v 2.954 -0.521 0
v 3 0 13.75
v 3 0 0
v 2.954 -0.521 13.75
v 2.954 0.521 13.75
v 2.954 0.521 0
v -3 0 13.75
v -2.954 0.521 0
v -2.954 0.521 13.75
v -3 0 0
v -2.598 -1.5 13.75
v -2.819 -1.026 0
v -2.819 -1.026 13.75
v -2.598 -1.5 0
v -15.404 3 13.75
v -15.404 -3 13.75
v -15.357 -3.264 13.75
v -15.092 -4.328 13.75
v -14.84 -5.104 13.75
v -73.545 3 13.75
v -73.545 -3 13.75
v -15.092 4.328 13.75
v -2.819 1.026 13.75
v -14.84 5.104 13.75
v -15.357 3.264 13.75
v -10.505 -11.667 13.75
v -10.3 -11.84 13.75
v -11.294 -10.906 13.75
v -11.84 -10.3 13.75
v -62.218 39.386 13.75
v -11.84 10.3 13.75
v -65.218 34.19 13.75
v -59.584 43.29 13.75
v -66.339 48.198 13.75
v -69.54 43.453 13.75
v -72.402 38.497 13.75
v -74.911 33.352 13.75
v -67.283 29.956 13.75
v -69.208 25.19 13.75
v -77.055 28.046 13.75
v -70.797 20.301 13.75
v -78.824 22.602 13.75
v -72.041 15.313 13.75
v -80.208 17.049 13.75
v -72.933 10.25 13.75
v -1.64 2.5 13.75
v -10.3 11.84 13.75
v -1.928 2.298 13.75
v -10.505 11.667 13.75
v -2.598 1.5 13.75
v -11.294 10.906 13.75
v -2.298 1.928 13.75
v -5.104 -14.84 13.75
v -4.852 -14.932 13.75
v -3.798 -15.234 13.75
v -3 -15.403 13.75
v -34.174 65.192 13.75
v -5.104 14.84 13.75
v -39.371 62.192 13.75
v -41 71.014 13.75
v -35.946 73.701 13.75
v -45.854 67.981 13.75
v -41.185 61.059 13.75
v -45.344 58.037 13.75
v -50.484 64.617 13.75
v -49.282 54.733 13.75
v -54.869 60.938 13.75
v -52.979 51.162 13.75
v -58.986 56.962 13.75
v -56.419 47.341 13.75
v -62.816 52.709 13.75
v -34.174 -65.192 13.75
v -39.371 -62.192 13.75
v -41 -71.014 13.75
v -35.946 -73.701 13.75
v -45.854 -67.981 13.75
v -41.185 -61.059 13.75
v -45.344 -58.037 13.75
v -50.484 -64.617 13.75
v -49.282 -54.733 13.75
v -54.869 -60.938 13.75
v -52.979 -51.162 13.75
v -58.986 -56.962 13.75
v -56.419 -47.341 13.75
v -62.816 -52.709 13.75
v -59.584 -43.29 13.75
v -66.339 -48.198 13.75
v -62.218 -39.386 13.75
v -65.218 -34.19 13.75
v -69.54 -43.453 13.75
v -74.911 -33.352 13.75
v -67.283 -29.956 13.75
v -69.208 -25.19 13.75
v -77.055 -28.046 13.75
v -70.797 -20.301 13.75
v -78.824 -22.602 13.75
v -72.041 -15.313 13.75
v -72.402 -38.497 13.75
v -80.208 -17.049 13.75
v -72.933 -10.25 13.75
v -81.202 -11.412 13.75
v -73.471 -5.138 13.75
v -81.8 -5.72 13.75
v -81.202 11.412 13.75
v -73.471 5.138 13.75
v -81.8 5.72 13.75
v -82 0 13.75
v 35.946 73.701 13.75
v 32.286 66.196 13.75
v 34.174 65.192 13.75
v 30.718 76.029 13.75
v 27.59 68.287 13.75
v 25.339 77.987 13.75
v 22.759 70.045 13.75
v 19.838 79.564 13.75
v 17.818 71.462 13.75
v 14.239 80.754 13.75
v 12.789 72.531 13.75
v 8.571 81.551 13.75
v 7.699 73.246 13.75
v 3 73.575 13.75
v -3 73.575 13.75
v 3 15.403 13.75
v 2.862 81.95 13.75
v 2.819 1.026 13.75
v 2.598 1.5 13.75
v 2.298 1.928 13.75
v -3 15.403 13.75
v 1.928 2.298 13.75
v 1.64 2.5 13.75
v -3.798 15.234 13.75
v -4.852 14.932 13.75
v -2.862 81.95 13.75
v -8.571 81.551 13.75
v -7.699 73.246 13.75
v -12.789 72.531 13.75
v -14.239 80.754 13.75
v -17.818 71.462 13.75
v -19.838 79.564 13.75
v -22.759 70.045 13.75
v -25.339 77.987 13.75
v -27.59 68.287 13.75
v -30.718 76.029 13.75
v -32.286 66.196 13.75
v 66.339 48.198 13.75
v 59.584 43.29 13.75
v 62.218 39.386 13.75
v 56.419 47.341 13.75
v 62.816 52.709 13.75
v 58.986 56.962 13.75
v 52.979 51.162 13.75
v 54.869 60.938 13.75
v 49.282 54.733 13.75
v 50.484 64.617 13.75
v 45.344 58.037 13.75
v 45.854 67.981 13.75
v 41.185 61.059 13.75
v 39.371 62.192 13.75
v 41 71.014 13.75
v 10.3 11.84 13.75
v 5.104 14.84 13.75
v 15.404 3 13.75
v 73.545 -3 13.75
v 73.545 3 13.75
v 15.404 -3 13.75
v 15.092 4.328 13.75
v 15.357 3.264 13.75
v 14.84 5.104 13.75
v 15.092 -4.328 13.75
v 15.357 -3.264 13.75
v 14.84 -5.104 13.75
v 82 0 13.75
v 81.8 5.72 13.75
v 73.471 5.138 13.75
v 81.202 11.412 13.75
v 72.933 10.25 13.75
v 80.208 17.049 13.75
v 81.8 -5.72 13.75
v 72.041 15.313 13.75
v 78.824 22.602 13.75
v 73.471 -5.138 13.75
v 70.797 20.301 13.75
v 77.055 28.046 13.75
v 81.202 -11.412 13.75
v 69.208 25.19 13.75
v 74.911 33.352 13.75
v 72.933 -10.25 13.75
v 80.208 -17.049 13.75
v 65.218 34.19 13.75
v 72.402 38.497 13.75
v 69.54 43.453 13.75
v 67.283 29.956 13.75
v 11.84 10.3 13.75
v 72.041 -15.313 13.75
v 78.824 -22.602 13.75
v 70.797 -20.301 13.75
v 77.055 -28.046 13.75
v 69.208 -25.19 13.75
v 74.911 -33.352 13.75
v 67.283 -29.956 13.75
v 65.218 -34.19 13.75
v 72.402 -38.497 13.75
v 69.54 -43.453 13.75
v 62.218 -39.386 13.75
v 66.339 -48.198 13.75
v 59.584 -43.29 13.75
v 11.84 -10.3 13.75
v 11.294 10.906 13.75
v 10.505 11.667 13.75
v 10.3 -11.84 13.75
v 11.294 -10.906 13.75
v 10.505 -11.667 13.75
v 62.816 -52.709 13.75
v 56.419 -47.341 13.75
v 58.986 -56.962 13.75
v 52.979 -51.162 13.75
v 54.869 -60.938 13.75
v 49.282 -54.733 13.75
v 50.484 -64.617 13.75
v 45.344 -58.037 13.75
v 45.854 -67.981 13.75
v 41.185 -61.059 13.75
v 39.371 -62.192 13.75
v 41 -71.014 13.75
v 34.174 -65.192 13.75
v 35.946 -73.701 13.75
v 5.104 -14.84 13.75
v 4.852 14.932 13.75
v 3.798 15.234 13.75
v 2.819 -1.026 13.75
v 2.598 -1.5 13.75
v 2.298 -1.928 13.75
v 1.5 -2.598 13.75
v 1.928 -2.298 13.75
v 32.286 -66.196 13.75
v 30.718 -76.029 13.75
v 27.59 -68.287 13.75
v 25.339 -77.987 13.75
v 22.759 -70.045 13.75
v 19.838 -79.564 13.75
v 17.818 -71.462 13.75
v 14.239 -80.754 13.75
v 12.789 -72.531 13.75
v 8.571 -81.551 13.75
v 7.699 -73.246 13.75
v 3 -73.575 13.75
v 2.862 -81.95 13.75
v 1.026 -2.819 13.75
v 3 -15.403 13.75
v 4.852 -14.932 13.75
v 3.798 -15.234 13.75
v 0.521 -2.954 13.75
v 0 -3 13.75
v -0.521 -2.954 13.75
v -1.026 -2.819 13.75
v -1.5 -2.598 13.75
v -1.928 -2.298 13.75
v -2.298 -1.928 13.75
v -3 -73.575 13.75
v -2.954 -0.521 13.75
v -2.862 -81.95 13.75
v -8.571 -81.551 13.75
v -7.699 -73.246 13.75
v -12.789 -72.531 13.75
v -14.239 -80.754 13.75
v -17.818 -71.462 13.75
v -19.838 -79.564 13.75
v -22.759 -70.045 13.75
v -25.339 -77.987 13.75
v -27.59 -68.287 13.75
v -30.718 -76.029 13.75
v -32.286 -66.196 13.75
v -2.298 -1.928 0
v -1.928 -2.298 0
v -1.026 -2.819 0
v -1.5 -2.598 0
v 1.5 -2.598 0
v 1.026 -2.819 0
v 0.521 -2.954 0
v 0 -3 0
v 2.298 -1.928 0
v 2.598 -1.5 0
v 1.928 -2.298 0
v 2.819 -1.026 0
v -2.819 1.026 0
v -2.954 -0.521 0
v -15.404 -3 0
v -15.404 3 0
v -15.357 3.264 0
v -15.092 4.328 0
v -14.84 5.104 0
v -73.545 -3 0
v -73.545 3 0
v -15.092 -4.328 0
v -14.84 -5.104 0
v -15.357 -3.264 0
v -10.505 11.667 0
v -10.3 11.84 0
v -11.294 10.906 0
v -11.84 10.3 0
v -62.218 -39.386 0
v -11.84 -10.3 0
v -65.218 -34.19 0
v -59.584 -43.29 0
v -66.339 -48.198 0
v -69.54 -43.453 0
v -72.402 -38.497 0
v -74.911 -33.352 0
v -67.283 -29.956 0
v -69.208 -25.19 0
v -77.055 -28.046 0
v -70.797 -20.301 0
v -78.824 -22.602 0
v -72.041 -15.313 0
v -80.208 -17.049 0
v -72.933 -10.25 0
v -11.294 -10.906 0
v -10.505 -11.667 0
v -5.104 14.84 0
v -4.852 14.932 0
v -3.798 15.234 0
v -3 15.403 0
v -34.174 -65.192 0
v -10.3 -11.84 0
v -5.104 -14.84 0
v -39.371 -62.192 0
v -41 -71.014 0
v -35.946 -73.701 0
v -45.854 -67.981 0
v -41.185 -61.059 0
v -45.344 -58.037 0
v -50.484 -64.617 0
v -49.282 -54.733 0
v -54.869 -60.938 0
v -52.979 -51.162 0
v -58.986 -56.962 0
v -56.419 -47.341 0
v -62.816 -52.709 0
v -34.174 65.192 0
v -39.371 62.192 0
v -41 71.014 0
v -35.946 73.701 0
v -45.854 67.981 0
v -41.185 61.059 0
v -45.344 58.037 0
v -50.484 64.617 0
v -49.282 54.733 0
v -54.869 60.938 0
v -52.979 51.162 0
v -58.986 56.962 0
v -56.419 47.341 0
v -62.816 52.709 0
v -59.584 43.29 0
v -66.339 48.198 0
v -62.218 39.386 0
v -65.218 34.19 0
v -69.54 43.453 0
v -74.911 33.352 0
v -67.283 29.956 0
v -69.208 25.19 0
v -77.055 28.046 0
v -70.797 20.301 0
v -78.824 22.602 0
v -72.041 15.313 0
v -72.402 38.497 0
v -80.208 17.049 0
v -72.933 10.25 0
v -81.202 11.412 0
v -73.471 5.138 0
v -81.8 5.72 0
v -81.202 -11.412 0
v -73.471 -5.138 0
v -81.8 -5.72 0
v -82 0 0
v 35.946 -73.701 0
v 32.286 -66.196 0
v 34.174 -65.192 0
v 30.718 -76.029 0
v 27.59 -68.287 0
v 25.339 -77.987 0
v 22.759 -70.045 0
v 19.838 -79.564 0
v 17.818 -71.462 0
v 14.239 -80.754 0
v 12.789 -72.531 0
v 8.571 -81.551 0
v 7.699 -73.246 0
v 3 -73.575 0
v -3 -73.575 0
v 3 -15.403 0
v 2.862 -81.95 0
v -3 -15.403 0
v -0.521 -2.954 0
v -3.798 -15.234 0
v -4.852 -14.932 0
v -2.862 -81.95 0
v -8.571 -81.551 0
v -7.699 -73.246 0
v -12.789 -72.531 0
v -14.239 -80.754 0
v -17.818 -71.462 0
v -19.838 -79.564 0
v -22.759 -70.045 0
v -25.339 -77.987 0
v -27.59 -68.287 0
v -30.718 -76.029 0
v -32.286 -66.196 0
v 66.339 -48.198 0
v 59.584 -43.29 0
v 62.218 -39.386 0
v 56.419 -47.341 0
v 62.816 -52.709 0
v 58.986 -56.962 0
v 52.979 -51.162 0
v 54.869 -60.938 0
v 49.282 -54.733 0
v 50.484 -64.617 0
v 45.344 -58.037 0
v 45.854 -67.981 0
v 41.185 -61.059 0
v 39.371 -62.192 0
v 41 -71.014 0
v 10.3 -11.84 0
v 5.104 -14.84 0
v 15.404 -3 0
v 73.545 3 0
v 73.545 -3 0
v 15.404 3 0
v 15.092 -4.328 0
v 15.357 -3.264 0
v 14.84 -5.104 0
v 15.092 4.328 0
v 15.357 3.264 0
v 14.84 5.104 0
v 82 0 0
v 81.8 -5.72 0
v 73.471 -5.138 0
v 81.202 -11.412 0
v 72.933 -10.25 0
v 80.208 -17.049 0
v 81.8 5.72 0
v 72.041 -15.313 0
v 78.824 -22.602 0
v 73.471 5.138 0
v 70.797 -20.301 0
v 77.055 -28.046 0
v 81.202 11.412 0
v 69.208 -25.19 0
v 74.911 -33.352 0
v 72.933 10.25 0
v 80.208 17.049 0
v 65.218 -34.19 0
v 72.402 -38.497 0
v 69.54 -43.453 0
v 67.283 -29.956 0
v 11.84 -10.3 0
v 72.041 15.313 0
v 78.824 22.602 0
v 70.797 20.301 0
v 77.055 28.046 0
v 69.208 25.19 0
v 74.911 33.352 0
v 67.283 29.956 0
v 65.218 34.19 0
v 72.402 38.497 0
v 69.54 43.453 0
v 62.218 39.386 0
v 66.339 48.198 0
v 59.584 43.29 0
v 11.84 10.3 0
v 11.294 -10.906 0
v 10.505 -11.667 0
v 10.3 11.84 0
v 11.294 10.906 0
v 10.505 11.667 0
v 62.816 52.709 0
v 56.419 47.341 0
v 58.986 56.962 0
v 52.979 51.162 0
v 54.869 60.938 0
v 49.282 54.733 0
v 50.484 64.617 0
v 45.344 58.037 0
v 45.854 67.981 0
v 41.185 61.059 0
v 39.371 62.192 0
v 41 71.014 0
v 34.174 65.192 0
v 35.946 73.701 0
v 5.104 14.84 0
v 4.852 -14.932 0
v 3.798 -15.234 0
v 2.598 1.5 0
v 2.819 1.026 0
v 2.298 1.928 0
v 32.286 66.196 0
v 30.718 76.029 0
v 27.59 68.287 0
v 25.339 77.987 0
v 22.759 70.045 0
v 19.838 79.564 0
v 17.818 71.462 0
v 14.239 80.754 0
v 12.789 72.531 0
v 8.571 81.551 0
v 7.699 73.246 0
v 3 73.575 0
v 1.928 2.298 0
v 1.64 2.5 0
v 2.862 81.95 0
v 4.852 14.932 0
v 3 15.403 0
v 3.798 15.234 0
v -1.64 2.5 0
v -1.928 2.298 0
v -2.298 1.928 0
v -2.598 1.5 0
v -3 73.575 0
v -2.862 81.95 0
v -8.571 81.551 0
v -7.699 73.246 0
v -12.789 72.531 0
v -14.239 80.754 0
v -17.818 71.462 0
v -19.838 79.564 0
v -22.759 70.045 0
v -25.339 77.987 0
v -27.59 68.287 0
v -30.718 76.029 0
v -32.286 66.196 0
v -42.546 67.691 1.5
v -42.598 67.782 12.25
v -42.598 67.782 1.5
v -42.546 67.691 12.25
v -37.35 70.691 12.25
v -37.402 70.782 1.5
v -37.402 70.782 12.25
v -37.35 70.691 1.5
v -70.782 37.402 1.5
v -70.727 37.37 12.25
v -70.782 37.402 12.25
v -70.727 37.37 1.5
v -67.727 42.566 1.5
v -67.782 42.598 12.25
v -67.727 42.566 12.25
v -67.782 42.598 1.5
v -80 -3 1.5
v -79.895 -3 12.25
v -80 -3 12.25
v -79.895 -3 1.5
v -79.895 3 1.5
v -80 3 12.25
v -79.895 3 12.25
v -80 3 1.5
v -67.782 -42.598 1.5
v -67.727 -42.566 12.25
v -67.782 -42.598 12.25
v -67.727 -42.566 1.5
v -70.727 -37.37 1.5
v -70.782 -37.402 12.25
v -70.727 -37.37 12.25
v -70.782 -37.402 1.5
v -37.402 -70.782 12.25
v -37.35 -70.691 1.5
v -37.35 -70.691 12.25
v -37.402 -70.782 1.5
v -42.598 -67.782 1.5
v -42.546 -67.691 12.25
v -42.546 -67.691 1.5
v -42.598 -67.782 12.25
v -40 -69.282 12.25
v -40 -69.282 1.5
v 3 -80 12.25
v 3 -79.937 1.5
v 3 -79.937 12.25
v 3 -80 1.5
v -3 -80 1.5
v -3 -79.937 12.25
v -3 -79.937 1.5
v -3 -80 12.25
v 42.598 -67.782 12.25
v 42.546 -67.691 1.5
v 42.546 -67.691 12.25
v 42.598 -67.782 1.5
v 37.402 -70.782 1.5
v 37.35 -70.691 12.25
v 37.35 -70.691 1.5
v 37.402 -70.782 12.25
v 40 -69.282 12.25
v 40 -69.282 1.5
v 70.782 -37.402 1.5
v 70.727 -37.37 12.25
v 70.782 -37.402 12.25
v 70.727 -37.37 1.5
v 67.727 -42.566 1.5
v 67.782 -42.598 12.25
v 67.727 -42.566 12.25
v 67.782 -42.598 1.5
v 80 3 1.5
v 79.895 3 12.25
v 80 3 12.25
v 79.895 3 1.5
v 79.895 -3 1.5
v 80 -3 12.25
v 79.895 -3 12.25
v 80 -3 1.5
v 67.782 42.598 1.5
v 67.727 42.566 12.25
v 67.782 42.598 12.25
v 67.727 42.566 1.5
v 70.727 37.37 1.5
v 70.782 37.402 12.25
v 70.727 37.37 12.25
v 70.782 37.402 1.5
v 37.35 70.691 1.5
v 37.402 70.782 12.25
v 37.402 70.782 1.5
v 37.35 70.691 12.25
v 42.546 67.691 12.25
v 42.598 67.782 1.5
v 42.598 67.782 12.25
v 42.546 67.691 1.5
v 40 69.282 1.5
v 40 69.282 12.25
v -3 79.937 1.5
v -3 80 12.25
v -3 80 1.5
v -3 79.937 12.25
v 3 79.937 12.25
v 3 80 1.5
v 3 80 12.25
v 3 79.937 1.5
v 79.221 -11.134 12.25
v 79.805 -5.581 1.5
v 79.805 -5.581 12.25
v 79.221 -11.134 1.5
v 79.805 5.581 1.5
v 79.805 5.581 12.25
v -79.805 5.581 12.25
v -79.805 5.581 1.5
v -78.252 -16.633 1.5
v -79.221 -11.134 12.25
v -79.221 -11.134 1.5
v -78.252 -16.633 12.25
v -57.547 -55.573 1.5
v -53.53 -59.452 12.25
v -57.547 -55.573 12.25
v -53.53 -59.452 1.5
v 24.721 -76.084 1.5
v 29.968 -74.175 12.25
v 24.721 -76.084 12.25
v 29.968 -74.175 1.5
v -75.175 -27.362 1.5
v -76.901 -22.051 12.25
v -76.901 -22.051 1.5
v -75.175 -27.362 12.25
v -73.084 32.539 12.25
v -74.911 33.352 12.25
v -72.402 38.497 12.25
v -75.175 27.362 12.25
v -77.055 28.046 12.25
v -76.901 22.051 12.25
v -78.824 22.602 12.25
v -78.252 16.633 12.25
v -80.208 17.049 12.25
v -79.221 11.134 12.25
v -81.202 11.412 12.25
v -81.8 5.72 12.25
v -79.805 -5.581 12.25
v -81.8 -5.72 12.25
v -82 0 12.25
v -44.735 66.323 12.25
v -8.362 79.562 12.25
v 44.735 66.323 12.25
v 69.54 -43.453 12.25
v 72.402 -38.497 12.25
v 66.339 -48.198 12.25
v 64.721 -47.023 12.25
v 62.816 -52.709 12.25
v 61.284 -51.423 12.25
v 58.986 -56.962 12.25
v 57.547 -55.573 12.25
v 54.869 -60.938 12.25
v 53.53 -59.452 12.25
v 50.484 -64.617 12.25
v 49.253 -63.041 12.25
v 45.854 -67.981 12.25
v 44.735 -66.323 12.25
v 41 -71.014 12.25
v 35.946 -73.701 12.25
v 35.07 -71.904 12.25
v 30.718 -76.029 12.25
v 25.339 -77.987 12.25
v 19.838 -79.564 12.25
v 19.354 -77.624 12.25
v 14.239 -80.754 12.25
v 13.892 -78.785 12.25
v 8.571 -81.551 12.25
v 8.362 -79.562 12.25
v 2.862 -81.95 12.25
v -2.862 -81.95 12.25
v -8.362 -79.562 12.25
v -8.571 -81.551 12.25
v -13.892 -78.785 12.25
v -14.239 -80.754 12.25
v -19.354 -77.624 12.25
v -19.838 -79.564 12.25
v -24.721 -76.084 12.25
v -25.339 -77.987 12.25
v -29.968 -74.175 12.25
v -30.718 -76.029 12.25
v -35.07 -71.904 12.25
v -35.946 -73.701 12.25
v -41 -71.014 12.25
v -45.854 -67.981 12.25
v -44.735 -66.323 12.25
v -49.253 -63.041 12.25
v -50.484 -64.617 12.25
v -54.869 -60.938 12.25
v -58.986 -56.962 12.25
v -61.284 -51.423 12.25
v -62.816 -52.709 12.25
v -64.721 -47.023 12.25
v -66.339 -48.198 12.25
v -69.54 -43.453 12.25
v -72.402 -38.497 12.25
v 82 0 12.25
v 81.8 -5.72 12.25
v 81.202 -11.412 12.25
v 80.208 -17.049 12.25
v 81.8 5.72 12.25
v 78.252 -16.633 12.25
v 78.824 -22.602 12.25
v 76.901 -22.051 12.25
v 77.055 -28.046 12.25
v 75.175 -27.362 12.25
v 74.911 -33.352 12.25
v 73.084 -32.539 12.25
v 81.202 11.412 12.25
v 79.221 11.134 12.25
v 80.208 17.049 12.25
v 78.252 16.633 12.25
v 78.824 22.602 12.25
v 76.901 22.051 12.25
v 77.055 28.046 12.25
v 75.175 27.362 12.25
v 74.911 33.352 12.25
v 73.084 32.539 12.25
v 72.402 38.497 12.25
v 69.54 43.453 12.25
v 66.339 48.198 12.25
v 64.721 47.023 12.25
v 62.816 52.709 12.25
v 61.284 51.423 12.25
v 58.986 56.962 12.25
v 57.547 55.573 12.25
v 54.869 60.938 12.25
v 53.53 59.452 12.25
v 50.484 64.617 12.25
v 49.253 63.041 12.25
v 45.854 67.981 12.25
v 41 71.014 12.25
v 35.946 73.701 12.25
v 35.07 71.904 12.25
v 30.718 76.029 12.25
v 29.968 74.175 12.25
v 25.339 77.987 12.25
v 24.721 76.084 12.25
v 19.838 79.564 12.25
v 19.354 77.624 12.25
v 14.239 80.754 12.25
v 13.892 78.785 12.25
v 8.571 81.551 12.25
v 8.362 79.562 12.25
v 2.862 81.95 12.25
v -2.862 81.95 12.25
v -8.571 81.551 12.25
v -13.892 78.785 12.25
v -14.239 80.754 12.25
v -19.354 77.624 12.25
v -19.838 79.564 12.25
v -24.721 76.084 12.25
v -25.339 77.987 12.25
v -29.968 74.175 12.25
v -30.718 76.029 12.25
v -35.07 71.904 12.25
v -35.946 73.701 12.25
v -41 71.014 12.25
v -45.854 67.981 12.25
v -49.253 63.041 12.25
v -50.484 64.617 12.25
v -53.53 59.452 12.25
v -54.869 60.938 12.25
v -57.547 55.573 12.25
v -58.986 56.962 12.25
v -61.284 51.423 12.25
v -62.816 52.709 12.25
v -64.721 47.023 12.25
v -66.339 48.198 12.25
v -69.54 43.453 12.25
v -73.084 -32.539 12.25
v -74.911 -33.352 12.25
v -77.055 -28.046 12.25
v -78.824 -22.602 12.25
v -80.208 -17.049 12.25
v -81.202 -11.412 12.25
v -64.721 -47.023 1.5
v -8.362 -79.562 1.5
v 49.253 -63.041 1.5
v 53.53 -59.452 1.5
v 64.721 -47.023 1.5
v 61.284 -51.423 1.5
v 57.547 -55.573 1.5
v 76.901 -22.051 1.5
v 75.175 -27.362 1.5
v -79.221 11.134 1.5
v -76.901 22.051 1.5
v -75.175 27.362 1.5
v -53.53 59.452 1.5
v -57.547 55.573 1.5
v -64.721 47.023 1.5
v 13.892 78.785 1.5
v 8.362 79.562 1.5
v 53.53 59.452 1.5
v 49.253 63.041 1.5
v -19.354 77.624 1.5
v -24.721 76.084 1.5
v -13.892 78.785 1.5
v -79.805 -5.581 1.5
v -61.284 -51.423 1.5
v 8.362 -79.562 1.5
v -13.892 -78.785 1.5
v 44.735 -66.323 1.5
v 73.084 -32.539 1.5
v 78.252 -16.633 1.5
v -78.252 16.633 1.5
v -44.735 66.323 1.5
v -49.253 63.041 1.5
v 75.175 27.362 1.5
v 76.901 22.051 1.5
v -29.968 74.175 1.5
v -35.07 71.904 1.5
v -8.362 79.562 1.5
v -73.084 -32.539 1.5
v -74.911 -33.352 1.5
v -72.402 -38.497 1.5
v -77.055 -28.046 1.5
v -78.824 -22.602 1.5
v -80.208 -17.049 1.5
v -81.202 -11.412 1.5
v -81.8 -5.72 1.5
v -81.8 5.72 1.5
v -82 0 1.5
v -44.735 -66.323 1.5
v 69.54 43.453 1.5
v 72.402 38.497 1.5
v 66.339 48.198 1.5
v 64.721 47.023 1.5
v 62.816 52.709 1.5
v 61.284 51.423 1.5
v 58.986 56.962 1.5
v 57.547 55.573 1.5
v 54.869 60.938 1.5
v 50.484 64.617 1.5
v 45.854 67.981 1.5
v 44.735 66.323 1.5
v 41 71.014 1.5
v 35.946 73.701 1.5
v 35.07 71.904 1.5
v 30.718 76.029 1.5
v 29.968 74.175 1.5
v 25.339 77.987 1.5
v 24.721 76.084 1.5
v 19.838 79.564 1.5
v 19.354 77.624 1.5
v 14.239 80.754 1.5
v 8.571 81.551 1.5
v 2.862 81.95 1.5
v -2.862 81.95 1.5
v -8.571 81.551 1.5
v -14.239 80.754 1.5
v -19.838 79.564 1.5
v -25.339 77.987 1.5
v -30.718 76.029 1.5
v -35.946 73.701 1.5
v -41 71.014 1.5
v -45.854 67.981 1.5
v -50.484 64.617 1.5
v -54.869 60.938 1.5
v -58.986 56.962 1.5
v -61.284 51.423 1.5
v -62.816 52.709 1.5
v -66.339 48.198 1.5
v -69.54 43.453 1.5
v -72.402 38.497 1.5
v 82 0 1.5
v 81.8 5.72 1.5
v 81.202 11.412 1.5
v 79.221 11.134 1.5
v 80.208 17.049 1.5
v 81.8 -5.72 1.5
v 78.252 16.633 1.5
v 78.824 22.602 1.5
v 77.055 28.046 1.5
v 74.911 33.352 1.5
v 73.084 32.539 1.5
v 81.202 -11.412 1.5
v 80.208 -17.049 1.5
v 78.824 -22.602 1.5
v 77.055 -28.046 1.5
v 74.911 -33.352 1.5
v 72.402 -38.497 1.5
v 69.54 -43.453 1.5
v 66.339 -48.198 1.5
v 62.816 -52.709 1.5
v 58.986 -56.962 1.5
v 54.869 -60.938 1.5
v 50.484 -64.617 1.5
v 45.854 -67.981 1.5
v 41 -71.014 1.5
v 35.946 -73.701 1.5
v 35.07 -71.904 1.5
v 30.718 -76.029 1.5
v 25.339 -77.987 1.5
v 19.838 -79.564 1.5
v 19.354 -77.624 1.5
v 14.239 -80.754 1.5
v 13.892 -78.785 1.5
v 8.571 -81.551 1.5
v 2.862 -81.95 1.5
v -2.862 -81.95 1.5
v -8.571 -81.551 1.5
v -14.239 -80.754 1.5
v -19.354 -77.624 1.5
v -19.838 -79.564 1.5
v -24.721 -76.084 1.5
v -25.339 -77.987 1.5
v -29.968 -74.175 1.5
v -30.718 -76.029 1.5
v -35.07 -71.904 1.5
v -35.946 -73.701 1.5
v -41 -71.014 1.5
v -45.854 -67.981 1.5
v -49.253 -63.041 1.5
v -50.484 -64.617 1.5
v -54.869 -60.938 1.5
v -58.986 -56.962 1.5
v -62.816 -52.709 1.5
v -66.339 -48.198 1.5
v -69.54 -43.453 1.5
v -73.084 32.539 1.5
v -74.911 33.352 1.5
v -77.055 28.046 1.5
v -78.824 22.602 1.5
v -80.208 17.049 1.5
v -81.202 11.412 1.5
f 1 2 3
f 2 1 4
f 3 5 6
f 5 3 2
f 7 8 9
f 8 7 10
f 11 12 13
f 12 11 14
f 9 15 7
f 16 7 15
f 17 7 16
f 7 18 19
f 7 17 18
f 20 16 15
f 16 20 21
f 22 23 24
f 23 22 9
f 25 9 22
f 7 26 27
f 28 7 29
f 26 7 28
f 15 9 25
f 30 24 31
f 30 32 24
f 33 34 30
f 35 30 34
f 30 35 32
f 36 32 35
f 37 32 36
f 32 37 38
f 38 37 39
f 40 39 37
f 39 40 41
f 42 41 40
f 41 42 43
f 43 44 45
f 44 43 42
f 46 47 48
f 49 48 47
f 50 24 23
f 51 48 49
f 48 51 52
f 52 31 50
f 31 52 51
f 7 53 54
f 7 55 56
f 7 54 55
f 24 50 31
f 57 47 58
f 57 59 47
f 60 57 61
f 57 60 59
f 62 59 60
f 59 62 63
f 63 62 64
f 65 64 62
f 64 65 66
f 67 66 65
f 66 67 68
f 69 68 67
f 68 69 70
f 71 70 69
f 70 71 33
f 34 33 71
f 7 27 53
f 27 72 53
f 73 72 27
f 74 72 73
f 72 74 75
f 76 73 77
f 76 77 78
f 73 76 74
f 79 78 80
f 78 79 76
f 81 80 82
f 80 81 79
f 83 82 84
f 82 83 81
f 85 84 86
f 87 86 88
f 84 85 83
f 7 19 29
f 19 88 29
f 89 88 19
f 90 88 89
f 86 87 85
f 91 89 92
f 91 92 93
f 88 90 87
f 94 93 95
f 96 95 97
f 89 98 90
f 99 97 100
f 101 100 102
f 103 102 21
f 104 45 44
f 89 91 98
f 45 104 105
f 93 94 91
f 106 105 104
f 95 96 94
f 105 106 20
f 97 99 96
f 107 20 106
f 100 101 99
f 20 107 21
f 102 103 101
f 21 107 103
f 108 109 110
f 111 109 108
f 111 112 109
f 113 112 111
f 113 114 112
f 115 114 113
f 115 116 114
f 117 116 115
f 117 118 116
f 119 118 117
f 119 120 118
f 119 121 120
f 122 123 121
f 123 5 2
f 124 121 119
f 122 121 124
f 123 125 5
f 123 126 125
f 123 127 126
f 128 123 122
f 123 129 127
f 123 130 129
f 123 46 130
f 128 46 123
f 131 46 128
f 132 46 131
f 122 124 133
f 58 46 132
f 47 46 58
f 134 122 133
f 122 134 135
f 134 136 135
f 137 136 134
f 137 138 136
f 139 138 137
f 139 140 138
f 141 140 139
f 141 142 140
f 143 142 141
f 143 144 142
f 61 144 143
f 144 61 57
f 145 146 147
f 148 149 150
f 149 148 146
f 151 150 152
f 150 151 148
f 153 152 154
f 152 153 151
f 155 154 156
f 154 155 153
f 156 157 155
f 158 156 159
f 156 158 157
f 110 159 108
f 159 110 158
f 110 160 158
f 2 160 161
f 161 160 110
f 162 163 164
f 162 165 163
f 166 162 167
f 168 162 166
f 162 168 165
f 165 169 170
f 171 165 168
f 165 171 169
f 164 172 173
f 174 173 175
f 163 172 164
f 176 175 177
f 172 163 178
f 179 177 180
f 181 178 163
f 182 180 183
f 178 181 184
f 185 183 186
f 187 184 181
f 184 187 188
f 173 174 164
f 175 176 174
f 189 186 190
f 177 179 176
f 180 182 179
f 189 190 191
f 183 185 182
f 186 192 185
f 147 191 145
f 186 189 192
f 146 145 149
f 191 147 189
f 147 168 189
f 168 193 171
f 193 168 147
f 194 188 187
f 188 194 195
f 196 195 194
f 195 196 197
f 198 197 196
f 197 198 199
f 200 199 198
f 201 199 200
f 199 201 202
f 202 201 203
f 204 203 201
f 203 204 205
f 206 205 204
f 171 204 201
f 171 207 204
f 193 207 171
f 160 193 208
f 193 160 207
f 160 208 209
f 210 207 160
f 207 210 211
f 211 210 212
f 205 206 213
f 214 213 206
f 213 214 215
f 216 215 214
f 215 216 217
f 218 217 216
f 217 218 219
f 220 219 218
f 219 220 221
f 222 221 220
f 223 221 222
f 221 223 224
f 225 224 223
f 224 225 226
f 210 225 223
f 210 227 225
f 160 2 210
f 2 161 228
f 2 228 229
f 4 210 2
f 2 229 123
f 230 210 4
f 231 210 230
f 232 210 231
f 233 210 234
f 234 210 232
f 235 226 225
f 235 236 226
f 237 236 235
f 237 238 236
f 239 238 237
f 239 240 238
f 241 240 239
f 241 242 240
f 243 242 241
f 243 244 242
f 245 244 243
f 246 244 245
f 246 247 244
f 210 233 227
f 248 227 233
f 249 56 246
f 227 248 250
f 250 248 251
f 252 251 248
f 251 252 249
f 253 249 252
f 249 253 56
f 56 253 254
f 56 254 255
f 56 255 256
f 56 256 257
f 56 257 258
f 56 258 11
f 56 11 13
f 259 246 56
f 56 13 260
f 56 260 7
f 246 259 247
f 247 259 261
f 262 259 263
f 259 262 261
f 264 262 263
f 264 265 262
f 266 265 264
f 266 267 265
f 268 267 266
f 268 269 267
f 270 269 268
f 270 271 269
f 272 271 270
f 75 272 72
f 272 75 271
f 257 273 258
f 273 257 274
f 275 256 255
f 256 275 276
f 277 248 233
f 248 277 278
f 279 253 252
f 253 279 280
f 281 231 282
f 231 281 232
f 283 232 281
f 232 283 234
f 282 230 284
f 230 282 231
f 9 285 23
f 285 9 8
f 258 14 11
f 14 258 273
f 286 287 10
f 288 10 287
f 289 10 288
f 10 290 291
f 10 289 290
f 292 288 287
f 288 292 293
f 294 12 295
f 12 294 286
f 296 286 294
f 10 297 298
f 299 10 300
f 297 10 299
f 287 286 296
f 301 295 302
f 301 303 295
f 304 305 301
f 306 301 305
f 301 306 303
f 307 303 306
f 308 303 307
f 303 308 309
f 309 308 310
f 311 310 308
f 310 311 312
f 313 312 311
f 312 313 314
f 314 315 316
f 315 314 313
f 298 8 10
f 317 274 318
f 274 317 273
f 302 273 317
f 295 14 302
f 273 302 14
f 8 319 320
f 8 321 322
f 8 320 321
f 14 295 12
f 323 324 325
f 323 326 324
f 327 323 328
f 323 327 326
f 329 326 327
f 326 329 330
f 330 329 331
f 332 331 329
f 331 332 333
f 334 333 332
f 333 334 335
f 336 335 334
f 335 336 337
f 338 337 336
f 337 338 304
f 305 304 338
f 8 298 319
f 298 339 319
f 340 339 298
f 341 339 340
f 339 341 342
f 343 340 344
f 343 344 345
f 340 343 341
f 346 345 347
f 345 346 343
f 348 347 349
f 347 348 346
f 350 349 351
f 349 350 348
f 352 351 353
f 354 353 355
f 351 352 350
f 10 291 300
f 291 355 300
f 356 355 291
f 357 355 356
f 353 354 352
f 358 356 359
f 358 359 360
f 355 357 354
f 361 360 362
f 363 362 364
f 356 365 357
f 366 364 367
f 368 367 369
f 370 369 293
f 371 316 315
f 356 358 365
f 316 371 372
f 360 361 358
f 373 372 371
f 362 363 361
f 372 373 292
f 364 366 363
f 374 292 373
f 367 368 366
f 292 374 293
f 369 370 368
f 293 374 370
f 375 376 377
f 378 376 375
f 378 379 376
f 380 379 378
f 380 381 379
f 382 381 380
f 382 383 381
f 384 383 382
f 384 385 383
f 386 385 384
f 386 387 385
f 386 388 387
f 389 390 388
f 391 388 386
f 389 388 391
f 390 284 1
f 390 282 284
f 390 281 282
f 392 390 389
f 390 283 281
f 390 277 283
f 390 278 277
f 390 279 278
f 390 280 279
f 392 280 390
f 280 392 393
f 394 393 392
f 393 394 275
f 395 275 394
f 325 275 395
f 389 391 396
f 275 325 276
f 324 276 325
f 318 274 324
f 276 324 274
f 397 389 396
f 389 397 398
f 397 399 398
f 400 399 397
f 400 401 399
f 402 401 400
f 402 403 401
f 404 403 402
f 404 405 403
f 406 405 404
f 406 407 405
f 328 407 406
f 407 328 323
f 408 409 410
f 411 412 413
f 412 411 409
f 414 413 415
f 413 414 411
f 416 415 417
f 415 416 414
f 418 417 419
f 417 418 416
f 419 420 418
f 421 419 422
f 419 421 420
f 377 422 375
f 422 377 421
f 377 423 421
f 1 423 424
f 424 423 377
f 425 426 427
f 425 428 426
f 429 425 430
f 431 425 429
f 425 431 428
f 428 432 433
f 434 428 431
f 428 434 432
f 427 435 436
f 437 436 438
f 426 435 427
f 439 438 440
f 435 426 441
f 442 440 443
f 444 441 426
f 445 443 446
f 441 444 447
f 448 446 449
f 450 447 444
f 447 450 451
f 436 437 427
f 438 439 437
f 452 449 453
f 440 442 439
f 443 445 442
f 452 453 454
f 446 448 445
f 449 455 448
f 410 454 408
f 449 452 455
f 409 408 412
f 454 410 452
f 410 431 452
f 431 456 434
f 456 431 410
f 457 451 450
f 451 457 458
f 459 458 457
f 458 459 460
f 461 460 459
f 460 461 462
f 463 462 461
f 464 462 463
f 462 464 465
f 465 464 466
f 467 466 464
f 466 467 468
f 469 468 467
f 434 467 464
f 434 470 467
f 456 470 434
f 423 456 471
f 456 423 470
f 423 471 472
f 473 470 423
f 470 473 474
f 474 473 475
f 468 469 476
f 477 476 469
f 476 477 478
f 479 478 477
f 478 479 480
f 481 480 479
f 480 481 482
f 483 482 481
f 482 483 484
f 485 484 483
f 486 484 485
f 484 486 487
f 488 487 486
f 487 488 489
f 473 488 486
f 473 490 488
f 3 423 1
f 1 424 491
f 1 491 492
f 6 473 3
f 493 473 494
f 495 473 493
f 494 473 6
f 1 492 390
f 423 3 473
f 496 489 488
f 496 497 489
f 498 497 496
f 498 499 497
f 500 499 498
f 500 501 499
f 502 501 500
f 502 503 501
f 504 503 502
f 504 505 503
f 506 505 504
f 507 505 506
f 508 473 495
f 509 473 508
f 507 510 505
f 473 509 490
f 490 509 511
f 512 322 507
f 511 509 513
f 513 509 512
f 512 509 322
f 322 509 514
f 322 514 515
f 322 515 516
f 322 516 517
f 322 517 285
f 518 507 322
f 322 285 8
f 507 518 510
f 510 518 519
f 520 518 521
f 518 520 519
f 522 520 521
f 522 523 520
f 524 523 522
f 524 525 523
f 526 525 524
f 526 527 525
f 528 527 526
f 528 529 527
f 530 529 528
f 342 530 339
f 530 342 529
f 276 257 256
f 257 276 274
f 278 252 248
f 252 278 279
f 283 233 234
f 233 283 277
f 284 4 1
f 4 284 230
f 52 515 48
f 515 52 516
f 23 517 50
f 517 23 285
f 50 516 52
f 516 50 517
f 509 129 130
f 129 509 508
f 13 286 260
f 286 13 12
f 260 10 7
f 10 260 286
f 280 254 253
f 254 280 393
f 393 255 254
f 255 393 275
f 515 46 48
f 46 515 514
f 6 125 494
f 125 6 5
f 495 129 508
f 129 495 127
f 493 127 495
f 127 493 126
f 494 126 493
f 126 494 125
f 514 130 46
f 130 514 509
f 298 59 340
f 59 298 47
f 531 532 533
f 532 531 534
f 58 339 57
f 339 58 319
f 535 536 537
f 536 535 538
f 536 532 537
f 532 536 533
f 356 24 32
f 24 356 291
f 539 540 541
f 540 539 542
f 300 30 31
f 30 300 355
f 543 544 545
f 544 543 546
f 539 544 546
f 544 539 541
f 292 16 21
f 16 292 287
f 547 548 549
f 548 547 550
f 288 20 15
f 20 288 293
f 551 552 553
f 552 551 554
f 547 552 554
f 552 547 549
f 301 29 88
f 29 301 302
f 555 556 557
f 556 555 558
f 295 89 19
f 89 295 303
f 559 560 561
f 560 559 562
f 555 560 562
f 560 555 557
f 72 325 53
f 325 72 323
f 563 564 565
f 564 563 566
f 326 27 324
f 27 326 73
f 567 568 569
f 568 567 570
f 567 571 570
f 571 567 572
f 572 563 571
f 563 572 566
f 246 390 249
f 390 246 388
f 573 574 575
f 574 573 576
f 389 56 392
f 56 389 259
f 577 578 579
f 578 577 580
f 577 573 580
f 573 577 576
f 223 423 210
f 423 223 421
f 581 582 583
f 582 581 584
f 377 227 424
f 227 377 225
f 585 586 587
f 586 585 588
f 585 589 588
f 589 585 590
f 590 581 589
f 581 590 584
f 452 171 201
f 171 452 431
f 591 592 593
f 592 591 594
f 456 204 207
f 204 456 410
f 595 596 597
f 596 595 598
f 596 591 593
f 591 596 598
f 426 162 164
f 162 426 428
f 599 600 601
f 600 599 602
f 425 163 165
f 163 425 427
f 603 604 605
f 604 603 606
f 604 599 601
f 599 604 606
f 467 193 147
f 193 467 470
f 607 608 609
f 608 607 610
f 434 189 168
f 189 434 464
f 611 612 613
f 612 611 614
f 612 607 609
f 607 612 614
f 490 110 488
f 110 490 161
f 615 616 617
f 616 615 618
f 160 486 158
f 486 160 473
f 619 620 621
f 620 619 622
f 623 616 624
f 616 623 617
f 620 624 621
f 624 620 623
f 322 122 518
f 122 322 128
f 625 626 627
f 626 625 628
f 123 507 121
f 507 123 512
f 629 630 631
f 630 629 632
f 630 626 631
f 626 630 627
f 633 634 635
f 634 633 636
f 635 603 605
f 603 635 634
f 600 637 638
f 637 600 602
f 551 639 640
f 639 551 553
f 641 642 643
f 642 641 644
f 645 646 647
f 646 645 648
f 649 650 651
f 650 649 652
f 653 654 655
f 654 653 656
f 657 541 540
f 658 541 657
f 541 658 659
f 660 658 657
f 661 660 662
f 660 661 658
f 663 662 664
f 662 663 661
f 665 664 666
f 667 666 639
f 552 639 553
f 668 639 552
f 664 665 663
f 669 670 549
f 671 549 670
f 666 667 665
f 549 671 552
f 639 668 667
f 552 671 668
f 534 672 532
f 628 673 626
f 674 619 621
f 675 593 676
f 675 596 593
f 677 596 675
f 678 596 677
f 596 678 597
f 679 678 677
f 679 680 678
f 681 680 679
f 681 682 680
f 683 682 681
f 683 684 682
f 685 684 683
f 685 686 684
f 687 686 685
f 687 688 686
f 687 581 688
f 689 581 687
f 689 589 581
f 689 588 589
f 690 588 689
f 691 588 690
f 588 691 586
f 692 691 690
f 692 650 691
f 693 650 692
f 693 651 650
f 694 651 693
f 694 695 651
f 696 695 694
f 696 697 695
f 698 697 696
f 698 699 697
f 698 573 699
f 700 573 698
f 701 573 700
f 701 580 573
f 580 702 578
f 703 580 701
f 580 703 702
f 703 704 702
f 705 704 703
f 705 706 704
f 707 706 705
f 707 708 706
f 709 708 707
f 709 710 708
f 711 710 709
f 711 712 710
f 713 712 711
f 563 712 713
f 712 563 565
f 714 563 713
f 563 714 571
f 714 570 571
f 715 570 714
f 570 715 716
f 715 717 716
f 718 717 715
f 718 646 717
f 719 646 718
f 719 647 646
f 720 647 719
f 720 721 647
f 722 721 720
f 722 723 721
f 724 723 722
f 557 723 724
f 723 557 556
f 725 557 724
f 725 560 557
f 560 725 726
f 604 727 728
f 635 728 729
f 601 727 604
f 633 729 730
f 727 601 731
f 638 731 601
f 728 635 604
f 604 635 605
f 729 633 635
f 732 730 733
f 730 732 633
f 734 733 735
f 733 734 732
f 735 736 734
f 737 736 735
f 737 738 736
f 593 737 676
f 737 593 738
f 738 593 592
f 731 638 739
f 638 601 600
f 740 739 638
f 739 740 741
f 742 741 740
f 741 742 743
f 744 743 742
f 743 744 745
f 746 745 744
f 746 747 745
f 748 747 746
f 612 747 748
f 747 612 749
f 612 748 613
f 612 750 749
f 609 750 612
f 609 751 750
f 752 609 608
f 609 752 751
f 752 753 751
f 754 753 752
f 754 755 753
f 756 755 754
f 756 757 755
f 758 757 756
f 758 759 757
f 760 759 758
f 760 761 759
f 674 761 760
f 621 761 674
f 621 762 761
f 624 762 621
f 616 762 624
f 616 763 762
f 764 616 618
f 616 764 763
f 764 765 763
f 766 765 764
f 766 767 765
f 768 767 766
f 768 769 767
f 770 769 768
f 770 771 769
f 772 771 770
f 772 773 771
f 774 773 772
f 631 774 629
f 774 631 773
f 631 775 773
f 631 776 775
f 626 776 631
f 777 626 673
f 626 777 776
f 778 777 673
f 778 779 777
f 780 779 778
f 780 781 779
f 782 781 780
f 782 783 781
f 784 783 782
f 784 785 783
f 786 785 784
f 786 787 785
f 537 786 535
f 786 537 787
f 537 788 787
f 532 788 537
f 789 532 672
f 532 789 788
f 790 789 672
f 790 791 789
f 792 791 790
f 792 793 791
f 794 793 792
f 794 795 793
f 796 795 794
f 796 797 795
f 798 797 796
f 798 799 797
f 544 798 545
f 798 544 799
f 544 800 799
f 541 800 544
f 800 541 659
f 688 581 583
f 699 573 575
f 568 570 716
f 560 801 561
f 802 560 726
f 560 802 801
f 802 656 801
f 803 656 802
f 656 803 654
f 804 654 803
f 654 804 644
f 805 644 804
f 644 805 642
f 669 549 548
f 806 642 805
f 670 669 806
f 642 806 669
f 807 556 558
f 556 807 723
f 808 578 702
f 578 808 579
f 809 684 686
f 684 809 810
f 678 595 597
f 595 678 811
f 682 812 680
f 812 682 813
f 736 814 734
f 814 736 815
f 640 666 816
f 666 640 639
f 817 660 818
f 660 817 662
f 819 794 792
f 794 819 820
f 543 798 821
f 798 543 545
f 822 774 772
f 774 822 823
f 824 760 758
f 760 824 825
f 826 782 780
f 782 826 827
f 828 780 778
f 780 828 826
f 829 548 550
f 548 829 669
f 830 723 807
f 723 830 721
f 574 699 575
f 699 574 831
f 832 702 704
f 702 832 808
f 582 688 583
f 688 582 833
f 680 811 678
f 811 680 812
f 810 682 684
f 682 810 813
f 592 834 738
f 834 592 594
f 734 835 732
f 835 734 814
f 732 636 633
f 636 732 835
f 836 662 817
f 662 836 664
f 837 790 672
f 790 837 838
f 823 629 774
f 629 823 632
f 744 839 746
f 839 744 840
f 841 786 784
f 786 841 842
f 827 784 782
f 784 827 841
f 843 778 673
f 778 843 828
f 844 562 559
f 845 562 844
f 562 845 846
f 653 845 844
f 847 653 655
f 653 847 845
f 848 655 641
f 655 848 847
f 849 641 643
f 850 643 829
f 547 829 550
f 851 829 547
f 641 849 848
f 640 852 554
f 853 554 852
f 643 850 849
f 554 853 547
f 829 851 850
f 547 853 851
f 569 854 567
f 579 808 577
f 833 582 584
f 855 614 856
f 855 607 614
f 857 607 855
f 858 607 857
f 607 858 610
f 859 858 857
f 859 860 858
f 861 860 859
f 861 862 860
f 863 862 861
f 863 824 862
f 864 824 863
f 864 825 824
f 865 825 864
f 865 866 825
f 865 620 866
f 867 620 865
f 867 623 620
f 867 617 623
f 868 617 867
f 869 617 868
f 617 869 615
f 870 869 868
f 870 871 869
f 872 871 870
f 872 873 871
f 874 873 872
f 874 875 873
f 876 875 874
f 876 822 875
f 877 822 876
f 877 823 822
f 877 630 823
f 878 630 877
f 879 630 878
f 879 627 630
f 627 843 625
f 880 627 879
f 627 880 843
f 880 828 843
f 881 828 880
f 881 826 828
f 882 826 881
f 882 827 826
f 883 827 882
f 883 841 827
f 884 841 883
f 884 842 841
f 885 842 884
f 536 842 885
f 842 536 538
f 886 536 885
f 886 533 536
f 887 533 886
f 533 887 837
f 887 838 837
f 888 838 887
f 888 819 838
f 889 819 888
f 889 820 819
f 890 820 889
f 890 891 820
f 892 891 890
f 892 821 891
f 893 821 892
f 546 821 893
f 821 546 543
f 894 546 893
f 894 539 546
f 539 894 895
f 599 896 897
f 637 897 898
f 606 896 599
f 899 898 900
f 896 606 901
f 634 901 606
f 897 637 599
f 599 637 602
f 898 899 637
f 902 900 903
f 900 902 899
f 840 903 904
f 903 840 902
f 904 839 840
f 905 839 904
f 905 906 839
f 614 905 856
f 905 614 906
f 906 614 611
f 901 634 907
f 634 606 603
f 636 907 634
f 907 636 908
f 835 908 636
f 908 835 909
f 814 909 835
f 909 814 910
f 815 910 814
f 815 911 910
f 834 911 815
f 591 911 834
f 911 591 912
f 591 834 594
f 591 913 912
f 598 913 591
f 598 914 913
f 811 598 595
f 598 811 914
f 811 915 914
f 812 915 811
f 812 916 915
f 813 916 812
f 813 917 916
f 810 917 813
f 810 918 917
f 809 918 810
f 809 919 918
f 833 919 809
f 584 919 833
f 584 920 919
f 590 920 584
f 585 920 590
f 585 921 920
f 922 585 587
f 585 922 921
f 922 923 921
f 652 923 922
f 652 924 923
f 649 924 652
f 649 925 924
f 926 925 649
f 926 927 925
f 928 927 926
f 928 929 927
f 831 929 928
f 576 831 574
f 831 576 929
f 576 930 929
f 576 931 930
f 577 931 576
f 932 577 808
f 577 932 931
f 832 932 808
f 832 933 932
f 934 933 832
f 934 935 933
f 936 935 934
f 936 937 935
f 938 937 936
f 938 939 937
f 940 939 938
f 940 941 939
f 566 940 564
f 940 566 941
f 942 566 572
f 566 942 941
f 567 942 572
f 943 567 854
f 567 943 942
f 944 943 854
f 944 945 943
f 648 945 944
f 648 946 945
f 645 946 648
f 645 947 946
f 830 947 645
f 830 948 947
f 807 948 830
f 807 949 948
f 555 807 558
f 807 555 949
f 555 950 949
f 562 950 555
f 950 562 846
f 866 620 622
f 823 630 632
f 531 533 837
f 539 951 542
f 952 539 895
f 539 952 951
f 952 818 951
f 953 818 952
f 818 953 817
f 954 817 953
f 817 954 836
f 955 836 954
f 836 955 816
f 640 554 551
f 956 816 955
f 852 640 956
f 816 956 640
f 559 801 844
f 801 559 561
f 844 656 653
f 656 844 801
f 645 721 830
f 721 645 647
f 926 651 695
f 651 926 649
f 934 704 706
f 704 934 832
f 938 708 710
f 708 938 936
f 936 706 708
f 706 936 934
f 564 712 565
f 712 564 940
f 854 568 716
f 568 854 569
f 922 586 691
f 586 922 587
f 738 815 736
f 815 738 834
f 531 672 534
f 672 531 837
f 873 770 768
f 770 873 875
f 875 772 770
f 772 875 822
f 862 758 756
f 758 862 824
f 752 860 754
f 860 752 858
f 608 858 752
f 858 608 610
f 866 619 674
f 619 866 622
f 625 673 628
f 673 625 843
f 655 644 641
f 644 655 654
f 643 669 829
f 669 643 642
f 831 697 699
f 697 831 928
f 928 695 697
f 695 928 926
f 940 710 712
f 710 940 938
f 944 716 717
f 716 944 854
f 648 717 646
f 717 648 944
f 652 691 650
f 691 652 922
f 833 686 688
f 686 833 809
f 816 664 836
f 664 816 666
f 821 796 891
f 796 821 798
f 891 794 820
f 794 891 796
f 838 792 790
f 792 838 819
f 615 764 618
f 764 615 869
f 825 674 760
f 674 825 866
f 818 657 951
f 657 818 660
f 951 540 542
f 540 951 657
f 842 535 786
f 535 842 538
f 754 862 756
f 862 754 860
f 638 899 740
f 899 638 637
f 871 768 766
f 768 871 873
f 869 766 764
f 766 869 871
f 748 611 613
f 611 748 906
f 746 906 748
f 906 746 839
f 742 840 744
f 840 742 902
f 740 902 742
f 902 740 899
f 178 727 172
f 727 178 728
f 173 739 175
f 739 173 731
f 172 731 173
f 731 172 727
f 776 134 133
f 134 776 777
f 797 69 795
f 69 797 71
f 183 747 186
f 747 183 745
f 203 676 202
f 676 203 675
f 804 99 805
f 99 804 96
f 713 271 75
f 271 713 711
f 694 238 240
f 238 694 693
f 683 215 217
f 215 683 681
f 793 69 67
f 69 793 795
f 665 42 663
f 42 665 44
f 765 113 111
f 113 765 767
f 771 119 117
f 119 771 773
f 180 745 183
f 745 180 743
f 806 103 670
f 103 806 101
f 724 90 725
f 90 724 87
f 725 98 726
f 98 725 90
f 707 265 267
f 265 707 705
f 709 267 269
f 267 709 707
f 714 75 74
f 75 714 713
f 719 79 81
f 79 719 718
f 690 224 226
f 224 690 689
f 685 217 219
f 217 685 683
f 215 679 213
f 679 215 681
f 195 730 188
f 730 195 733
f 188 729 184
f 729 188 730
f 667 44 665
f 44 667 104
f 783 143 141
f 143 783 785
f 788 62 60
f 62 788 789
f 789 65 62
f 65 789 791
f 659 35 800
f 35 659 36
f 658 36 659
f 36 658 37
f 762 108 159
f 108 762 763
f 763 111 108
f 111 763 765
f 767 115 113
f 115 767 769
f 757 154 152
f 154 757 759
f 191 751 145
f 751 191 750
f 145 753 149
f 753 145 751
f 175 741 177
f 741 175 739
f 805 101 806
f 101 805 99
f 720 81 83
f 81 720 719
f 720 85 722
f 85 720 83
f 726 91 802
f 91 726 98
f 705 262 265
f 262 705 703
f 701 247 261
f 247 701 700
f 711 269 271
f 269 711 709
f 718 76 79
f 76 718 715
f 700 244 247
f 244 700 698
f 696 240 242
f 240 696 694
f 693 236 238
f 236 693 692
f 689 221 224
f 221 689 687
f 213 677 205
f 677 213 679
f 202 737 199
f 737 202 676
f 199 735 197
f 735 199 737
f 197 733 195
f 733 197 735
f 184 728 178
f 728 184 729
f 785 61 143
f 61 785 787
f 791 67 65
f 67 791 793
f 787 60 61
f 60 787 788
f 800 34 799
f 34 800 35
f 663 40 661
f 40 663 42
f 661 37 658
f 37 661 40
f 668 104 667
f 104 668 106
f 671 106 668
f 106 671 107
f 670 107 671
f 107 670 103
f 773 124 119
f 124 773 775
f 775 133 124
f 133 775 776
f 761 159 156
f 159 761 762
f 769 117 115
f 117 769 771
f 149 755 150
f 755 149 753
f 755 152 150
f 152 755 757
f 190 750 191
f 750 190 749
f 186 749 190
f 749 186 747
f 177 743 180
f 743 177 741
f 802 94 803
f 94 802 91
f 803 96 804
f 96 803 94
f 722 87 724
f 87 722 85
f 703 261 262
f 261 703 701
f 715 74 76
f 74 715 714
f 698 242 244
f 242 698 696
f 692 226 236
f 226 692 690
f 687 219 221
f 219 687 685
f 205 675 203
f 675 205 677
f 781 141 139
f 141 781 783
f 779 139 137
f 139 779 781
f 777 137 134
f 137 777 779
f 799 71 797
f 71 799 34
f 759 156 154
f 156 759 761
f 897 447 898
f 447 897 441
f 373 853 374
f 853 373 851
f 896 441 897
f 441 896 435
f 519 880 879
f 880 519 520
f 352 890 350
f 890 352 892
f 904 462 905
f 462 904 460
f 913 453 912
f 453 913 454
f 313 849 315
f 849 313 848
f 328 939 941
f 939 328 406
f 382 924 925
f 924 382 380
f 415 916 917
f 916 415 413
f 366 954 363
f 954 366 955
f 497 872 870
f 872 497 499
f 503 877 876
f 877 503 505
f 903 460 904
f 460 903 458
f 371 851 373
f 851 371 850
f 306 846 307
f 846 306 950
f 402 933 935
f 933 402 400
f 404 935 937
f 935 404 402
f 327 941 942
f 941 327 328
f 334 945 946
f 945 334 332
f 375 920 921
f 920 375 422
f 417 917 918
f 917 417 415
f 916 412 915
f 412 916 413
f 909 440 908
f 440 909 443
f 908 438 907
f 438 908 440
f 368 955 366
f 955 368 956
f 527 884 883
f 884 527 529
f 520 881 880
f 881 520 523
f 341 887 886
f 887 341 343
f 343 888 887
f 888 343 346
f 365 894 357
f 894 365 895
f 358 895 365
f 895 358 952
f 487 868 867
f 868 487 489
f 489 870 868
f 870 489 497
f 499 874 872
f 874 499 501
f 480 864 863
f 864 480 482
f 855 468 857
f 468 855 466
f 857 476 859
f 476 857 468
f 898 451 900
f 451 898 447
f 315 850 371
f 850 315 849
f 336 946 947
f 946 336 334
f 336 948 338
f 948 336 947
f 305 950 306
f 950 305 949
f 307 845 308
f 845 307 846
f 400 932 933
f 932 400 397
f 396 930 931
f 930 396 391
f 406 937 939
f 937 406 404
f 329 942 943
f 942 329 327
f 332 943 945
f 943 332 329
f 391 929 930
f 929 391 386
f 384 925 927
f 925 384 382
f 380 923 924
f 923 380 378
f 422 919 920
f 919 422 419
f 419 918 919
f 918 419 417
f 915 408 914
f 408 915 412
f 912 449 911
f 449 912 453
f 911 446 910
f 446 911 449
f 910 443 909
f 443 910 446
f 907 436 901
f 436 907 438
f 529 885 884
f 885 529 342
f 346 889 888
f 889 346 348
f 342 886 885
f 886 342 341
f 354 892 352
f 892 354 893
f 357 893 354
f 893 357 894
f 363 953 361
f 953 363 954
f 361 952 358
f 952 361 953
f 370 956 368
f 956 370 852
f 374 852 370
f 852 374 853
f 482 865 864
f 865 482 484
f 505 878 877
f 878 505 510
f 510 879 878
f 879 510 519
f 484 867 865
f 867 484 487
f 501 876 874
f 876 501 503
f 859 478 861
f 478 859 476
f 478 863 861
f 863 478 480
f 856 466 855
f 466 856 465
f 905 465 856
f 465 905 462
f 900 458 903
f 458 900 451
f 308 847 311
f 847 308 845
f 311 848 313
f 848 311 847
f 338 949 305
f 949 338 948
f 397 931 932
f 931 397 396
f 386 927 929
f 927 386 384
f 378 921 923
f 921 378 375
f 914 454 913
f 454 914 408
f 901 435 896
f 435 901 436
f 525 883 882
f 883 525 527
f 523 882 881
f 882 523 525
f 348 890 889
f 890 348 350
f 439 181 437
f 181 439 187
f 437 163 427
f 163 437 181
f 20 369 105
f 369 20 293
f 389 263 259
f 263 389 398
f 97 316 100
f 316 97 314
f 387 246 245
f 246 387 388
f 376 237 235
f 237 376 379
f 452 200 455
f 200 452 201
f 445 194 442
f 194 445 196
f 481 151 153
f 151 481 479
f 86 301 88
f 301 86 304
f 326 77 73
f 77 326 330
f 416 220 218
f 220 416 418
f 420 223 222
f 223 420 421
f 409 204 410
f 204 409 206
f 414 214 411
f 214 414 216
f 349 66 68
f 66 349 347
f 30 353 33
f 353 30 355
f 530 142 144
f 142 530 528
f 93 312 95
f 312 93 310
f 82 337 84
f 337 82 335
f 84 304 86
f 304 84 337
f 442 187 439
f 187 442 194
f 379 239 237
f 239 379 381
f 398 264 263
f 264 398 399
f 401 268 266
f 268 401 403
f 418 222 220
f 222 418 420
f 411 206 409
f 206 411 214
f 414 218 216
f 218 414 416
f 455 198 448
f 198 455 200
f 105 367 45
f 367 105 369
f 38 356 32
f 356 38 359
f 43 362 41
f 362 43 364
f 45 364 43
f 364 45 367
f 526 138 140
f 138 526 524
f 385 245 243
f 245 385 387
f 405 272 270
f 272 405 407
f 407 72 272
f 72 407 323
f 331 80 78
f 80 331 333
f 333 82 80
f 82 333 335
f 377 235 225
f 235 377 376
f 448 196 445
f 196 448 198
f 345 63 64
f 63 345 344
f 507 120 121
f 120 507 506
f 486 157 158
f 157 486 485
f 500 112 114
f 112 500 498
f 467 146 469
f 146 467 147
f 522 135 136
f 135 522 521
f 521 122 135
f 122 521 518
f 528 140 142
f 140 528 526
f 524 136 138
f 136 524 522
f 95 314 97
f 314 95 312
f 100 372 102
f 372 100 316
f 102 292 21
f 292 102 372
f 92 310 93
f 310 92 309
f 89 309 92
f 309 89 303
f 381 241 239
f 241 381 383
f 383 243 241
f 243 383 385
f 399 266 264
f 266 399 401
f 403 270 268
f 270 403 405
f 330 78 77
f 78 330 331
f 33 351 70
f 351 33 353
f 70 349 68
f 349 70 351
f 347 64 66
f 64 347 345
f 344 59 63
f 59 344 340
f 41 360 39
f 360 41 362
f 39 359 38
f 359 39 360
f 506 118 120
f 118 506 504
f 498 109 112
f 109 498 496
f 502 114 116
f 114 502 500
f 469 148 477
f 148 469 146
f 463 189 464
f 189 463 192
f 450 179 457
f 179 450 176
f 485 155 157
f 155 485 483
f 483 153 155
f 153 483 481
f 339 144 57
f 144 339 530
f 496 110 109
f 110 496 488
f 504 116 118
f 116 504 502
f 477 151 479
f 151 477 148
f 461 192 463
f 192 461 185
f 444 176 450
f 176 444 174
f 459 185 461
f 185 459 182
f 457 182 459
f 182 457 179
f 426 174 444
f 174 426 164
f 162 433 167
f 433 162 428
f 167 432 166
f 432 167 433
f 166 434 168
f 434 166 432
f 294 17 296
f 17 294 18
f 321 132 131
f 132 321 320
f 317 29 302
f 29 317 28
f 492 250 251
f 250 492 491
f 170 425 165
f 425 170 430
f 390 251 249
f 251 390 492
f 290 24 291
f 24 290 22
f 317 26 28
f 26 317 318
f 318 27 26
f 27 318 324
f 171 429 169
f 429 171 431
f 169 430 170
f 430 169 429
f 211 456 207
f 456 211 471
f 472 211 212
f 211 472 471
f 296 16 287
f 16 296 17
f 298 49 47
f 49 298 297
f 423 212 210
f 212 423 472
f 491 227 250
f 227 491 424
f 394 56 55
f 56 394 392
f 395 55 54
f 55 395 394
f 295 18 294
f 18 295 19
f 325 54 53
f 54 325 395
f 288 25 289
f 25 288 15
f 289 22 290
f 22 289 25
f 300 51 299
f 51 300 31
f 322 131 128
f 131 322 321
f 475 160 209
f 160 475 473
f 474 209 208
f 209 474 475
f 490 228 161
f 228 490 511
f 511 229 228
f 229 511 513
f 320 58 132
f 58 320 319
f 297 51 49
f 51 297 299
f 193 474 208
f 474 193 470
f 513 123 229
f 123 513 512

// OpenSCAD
/// @file dynaTestWheelV01
///
/// @brief Wheel/pulley for dynamic testing setup
///
/// Designed to fit this motor on Servo City:
/// 612 RPM HD Premium Planetary Gear Motor w/Encoder
/// https://www.servocity.com/612-rpm-hd-premium-planetary-gear-motor-w-encoder
///
/// Effective dia is 160 mm. Shaft dia 6 mm and shaft D is 5.5 mm high.
///
/// Created 30 Jun 2017
///
/// @author Mustafa Ghazi

// wheel disk
innerDiskDia = 160; // [mm]
innerDiskThickness = 10.75; // [mm]
outerDiskDia = innerDiskDia + 4; // [mm]
outerDiskThickness = 1.5; // [mm]
shaftDDia = 6; // [mm]
shaftDHeight = 5.5; // [mm] 
largeFN = 90;

// hollow out and spokes
hollowInnerDia = shaftDDia + 25.4; // [mm]
hollowOuterDia = innerDiskDia - 25.4/2.0; // [mm]
spokeWidth = 6; // [mm]
spokeHeight = (hollowOuterDia - shaftDDia)/2.0 + (innerDiskDia - hollowOuterDia)/2.0; // [mm]
numSpokes = 12; 



// hollowed out center disk, without spokes
union() {

	difference() {
		union() {
			// solid center disk
			translate([0, 0, outerDiskThickness]) {
				rotate([0, 0,  0]) { 
					linear_extrude(height = innerDiskThickness, center = false, convexity = 10, twist = 0, slices = 20, scale = 1.0) { circle(d=innerDiskDia,$fn=largeFN); }
				}
			}
			
			// solid outer disks
			translate([0, 0, innerDiskThickness + outerDiskThickness]) {
				rotate([0, 0,  0]) { 
					linear_extrude(height = outerDiskThickness, center = false, convexity = 10, twist = 0, slices = 20, scale = 1.0) { circle(d=outerDiskDia,$fn=largeFN); }
				}
			}
			
			translate([0, 0, 0]) {
				rotate([0, 0, 0]) { 
					linear_extrude(height = outerDiskThickness, center = false, convexity = 10, twist = 0, slices = 20, scale = 1.0) { circle(d=outerDiskDia,$fn=largeFN); }
				}
			}
		}


		// D-shaped hole
		difference() {
			// shaft hole
			translate([0, 0, 0]) {
				rotate([0, 0,  0]) { 
					linear_extrude(height = innerDiskThickness + 2*outerDiskThickness, center = false, convexity = 10, twist = 0, slices = 20, scale = 1.0) { circle(d=shaftDDia,$fn=36); }
				}
			}

			translate([ -shaftDDia/2.0, shaftDHeight-shaftDDia/2.0, 0]) { 
				linear_extrude(height = innerDiskThickness + 2*outerDiskThickness, center = false, convexity = 10, twist = 0, slices = 20, scale = 1.0) { polygon(points = [[0,0],[shaftDDia,0],[shaftDDia,shaftDDia],[0,shaftDDia]], paths = undef, convexity = 1); }
			}

		}
		
		// hollow out disk material
		difference() {
			translate([0, 0, 0]) {
				rotate([0, 0,  0]) { 
					linear_extrude(height = innerDiskThickness + 2*outerDiskThickness, center = false, convexity = 10, twist = 0, slices = 20, scale = 1.0) { circle(d=hollowOuterDia,$fn=largeFN); }
				}
			}
			
			translate([0, 0, 0]) {
				rotate([0, 0,  0]) { 
					linear_extrude(height = innerDiskThickness + 2*outerDiskThickness, center = false, convexity = 10, twist = 0, slices = 20, scale = 1.0) { circle(d=hollowInnerDia,$fn=largeFN); }
				}
			}

		}

	}

	for(count = [1:1:numSpokes]) {
		rotate([0, 0,  count*360/numSpokes]) {
			translate([ -spokeWidth/2, shaftDDia/2.0, 0]) { 
				linear_extrude(height = innerDiskThickness + 2*outerDiskThickness, center = false, convexity = 10, twist = 0, slices = 20, scale = 1.0) { polygon(points = [[0,0],[spokeWidth,0],[spokeWidth,spokeHeight],[0,spokeHeight]], paths = undef, convexity = 1); }
			}
		}
	}

}
